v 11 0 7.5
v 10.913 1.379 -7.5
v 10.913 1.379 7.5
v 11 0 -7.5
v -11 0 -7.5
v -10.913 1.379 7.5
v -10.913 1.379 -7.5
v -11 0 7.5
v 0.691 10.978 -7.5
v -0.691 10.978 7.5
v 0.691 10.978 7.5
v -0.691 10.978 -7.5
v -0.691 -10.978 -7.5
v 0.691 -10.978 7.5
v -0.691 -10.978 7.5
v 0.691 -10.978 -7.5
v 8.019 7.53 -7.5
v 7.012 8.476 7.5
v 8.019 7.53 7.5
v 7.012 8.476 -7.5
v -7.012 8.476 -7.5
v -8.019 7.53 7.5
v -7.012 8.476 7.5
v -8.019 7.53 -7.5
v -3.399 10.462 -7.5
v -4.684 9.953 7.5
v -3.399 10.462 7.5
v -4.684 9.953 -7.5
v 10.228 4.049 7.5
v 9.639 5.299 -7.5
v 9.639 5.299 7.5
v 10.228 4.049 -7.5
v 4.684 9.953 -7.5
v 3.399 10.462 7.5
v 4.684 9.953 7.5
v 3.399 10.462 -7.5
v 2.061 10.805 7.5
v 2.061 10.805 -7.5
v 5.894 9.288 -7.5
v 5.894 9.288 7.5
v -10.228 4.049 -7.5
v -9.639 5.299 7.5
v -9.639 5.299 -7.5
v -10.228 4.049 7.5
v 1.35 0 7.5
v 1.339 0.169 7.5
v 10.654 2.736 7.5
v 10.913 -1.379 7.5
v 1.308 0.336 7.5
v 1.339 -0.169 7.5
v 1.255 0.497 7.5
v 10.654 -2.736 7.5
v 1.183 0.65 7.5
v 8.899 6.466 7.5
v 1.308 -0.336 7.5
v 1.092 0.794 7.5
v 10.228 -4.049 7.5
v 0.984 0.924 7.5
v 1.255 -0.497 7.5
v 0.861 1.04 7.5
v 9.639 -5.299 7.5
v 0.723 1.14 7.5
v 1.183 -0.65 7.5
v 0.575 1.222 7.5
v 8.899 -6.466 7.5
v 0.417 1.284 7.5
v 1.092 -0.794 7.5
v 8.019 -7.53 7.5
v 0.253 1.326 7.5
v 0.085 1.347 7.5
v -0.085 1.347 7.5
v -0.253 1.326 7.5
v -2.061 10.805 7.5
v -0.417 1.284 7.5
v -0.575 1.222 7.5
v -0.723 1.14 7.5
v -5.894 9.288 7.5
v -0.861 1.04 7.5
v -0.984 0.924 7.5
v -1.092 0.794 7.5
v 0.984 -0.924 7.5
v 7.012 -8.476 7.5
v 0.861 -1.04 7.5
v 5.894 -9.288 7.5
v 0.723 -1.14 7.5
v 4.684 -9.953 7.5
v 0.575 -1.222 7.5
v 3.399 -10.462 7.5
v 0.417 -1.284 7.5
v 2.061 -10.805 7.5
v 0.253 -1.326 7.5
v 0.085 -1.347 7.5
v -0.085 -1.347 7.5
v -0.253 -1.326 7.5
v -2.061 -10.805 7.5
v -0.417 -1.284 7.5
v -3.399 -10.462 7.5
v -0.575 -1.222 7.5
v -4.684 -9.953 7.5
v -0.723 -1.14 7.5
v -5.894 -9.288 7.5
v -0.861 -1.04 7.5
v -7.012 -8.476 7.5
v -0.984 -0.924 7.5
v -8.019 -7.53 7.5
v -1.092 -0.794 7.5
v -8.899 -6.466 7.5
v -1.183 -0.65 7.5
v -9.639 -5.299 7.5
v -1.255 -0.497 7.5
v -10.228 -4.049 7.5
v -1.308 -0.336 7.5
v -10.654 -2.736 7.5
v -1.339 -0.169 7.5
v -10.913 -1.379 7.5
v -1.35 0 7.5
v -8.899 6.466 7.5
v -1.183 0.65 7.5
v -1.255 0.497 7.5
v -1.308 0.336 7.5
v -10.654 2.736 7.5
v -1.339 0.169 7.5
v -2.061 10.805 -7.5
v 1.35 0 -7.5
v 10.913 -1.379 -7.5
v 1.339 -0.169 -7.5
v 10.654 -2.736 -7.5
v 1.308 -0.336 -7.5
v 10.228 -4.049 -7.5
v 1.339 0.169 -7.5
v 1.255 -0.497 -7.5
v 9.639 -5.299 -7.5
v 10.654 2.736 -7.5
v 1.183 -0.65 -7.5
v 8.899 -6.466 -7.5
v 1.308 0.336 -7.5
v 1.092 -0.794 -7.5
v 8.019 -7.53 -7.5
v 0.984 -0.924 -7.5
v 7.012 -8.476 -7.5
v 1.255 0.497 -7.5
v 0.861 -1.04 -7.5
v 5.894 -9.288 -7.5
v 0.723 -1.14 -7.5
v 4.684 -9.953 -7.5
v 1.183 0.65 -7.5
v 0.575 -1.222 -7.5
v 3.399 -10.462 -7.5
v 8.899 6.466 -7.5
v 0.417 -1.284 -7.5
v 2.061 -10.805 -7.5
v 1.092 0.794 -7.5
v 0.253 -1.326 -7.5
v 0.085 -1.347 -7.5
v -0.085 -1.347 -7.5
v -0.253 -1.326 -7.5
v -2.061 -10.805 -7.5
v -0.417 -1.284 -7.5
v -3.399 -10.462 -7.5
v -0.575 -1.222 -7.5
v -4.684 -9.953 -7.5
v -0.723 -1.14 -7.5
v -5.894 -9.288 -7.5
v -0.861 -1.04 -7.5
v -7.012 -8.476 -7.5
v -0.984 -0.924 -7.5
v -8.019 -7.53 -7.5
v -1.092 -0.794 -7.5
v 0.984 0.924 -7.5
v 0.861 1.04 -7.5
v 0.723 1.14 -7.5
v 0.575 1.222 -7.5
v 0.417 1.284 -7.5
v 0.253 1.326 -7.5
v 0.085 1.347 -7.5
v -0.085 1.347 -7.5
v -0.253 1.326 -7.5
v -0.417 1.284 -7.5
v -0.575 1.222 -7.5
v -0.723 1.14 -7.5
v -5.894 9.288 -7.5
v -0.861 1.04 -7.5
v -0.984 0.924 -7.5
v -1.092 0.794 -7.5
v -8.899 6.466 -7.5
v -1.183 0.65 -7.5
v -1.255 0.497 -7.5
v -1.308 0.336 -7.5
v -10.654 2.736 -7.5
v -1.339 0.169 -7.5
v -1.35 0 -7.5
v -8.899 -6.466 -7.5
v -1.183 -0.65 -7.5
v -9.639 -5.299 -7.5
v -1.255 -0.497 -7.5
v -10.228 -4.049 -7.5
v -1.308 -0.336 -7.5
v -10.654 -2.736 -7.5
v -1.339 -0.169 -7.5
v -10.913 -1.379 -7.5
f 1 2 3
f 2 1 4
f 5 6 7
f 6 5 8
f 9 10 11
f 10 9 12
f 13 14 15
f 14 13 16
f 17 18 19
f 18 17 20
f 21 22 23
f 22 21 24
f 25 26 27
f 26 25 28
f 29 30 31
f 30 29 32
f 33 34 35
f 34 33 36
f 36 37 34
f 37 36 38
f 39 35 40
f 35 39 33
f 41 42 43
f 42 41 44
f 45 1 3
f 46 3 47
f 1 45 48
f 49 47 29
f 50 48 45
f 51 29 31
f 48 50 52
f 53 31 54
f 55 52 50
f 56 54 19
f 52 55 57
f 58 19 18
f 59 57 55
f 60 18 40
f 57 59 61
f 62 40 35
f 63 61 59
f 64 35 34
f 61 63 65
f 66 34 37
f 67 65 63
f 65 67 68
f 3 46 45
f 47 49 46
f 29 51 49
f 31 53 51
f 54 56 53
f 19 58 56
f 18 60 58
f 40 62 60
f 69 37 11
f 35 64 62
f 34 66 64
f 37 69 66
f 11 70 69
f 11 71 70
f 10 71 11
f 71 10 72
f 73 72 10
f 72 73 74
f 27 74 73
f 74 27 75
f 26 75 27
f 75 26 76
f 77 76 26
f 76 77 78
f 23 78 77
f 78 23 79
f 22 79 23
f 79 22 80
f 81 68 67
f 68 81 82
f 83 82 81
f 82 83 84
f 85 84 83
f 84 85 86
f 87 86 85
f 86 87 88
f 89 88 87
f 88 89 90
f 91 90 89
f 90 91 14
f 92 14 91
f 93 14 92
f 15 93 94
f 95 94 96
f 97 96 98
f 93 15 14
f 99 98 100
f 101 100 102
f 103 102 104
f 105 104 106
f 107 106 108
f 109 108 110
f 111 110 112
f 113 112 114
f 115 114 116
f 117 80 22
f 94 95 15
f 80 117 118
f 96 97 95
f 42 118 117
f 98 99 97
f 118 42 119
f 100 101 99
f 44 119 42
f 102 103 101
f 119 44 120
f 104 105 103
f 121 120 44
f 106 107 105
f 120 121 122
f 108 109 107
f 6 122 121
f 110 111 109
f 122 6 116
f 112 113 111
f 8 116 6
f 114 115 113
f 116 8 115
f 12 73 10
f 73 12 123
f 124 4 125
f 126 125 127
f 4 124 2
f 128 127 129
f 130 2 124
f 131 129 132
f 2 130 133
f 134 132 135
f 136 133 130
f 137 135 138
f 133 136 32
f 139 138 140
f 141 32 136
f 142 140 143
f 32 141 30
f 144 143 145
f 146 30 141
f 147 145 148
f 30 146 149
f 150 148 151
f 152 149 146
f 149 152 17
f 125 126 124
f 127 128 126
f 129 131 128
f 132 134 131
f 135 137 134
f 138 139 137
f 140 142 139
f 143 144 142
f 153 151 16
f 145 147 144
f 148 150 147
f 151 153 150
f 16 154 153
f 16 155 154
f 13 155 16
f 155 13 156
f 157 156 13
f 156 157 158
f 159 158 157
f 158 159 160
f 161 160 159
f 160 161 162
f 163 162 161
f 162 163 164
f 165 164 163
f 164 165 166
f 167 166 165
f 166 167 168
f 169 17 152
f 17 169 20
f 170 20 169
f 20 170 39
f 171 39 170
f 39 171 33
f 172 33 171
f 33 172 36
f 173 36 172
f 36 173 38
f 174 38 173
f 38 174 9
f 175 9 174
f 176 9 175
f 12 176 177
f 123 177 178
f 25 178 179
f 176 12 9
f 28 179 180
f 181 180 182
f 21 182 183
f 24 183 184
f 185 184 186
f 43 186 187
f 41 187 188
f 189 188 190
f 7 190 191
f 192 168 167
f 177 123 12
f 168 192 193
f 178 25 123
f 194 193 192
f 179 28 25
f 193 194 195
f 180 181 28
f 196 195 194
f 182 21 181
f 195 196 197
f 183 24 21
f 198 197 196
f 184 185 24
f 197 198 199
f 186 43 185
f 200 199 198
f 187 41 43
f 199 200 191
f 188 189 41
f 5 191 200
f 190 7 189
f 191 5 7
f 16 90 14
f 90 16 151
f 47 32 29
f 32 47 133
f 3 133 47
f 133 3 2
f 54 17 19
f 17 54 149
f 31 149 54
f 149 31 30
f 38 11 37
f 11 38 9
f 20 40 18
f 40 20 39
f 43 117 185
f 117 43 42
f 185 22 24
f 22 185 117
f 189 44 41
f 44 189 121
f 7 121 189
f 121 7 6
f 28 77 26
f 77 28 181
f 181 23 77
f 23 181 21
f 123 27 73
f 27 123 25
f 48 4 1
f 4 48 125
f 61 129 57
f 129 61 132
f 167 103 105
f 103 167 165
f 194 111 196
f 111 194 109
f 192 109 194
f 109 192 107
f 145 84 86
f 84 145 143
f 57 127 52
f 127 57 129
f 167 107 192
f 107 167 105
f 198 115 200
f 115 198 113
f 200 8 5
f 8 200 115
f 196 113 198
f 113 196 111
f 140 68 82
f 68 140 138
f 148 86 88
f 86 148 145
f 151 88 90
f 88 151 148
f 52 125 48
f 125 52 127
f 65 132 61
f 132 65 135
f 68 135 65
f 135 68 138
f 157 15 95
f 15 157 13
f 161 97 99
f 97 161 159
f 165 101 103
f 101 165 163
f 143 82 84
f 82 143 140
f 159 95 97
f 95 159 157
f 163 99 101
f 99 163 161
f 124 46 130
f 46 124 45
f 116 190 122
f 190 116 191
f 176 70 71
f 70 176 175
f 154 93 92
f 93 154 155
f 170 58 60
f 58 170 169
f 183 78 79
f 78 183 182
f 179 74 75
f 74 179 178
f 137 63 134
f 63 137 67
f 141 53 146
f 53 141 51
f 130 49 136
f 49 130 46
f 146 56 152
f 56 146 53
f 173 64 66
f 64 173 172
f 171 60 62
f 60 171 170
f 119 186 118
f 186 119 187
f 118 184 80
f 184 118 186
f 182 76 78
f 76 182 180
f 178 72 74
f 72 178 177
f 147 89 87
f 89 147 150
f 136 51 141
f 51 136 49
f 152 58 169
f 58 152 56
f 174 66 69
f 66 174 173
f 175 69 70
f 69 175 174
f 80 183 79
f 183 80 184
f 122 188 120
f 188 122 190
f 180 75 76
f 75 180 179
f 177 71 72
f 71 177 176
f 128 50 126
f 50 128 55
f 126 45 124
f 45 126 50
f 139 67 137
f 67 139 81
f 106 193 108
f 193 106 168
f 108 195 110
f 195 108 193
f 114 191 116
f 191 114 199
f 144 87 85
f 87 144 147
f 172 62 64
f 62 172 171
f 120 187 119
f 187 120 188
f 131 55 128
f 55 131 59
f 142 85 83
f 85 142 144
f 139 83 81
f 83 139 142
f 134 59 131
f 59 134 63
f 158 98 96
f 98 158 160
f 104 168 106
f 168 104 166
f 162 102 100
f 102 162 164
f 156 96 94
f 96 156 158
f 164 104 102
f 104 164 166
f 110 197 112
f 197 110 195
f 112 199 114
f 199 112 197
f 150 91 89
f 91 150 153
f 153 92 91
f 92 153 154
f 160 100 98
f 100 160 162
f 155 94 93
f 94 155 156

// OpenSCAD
$fn = 50;


difference() {
	union() {
		translate(v = [0, 0, -7.5000000000]) {
			cylinder(h = 15, r = 11.0000000000);
		}
	}
	union() {
		translate(v = [0, 0, -100.0000000000]) {
			cylinder(h = 200, r = 1.3500000000);
		}
	}
}
